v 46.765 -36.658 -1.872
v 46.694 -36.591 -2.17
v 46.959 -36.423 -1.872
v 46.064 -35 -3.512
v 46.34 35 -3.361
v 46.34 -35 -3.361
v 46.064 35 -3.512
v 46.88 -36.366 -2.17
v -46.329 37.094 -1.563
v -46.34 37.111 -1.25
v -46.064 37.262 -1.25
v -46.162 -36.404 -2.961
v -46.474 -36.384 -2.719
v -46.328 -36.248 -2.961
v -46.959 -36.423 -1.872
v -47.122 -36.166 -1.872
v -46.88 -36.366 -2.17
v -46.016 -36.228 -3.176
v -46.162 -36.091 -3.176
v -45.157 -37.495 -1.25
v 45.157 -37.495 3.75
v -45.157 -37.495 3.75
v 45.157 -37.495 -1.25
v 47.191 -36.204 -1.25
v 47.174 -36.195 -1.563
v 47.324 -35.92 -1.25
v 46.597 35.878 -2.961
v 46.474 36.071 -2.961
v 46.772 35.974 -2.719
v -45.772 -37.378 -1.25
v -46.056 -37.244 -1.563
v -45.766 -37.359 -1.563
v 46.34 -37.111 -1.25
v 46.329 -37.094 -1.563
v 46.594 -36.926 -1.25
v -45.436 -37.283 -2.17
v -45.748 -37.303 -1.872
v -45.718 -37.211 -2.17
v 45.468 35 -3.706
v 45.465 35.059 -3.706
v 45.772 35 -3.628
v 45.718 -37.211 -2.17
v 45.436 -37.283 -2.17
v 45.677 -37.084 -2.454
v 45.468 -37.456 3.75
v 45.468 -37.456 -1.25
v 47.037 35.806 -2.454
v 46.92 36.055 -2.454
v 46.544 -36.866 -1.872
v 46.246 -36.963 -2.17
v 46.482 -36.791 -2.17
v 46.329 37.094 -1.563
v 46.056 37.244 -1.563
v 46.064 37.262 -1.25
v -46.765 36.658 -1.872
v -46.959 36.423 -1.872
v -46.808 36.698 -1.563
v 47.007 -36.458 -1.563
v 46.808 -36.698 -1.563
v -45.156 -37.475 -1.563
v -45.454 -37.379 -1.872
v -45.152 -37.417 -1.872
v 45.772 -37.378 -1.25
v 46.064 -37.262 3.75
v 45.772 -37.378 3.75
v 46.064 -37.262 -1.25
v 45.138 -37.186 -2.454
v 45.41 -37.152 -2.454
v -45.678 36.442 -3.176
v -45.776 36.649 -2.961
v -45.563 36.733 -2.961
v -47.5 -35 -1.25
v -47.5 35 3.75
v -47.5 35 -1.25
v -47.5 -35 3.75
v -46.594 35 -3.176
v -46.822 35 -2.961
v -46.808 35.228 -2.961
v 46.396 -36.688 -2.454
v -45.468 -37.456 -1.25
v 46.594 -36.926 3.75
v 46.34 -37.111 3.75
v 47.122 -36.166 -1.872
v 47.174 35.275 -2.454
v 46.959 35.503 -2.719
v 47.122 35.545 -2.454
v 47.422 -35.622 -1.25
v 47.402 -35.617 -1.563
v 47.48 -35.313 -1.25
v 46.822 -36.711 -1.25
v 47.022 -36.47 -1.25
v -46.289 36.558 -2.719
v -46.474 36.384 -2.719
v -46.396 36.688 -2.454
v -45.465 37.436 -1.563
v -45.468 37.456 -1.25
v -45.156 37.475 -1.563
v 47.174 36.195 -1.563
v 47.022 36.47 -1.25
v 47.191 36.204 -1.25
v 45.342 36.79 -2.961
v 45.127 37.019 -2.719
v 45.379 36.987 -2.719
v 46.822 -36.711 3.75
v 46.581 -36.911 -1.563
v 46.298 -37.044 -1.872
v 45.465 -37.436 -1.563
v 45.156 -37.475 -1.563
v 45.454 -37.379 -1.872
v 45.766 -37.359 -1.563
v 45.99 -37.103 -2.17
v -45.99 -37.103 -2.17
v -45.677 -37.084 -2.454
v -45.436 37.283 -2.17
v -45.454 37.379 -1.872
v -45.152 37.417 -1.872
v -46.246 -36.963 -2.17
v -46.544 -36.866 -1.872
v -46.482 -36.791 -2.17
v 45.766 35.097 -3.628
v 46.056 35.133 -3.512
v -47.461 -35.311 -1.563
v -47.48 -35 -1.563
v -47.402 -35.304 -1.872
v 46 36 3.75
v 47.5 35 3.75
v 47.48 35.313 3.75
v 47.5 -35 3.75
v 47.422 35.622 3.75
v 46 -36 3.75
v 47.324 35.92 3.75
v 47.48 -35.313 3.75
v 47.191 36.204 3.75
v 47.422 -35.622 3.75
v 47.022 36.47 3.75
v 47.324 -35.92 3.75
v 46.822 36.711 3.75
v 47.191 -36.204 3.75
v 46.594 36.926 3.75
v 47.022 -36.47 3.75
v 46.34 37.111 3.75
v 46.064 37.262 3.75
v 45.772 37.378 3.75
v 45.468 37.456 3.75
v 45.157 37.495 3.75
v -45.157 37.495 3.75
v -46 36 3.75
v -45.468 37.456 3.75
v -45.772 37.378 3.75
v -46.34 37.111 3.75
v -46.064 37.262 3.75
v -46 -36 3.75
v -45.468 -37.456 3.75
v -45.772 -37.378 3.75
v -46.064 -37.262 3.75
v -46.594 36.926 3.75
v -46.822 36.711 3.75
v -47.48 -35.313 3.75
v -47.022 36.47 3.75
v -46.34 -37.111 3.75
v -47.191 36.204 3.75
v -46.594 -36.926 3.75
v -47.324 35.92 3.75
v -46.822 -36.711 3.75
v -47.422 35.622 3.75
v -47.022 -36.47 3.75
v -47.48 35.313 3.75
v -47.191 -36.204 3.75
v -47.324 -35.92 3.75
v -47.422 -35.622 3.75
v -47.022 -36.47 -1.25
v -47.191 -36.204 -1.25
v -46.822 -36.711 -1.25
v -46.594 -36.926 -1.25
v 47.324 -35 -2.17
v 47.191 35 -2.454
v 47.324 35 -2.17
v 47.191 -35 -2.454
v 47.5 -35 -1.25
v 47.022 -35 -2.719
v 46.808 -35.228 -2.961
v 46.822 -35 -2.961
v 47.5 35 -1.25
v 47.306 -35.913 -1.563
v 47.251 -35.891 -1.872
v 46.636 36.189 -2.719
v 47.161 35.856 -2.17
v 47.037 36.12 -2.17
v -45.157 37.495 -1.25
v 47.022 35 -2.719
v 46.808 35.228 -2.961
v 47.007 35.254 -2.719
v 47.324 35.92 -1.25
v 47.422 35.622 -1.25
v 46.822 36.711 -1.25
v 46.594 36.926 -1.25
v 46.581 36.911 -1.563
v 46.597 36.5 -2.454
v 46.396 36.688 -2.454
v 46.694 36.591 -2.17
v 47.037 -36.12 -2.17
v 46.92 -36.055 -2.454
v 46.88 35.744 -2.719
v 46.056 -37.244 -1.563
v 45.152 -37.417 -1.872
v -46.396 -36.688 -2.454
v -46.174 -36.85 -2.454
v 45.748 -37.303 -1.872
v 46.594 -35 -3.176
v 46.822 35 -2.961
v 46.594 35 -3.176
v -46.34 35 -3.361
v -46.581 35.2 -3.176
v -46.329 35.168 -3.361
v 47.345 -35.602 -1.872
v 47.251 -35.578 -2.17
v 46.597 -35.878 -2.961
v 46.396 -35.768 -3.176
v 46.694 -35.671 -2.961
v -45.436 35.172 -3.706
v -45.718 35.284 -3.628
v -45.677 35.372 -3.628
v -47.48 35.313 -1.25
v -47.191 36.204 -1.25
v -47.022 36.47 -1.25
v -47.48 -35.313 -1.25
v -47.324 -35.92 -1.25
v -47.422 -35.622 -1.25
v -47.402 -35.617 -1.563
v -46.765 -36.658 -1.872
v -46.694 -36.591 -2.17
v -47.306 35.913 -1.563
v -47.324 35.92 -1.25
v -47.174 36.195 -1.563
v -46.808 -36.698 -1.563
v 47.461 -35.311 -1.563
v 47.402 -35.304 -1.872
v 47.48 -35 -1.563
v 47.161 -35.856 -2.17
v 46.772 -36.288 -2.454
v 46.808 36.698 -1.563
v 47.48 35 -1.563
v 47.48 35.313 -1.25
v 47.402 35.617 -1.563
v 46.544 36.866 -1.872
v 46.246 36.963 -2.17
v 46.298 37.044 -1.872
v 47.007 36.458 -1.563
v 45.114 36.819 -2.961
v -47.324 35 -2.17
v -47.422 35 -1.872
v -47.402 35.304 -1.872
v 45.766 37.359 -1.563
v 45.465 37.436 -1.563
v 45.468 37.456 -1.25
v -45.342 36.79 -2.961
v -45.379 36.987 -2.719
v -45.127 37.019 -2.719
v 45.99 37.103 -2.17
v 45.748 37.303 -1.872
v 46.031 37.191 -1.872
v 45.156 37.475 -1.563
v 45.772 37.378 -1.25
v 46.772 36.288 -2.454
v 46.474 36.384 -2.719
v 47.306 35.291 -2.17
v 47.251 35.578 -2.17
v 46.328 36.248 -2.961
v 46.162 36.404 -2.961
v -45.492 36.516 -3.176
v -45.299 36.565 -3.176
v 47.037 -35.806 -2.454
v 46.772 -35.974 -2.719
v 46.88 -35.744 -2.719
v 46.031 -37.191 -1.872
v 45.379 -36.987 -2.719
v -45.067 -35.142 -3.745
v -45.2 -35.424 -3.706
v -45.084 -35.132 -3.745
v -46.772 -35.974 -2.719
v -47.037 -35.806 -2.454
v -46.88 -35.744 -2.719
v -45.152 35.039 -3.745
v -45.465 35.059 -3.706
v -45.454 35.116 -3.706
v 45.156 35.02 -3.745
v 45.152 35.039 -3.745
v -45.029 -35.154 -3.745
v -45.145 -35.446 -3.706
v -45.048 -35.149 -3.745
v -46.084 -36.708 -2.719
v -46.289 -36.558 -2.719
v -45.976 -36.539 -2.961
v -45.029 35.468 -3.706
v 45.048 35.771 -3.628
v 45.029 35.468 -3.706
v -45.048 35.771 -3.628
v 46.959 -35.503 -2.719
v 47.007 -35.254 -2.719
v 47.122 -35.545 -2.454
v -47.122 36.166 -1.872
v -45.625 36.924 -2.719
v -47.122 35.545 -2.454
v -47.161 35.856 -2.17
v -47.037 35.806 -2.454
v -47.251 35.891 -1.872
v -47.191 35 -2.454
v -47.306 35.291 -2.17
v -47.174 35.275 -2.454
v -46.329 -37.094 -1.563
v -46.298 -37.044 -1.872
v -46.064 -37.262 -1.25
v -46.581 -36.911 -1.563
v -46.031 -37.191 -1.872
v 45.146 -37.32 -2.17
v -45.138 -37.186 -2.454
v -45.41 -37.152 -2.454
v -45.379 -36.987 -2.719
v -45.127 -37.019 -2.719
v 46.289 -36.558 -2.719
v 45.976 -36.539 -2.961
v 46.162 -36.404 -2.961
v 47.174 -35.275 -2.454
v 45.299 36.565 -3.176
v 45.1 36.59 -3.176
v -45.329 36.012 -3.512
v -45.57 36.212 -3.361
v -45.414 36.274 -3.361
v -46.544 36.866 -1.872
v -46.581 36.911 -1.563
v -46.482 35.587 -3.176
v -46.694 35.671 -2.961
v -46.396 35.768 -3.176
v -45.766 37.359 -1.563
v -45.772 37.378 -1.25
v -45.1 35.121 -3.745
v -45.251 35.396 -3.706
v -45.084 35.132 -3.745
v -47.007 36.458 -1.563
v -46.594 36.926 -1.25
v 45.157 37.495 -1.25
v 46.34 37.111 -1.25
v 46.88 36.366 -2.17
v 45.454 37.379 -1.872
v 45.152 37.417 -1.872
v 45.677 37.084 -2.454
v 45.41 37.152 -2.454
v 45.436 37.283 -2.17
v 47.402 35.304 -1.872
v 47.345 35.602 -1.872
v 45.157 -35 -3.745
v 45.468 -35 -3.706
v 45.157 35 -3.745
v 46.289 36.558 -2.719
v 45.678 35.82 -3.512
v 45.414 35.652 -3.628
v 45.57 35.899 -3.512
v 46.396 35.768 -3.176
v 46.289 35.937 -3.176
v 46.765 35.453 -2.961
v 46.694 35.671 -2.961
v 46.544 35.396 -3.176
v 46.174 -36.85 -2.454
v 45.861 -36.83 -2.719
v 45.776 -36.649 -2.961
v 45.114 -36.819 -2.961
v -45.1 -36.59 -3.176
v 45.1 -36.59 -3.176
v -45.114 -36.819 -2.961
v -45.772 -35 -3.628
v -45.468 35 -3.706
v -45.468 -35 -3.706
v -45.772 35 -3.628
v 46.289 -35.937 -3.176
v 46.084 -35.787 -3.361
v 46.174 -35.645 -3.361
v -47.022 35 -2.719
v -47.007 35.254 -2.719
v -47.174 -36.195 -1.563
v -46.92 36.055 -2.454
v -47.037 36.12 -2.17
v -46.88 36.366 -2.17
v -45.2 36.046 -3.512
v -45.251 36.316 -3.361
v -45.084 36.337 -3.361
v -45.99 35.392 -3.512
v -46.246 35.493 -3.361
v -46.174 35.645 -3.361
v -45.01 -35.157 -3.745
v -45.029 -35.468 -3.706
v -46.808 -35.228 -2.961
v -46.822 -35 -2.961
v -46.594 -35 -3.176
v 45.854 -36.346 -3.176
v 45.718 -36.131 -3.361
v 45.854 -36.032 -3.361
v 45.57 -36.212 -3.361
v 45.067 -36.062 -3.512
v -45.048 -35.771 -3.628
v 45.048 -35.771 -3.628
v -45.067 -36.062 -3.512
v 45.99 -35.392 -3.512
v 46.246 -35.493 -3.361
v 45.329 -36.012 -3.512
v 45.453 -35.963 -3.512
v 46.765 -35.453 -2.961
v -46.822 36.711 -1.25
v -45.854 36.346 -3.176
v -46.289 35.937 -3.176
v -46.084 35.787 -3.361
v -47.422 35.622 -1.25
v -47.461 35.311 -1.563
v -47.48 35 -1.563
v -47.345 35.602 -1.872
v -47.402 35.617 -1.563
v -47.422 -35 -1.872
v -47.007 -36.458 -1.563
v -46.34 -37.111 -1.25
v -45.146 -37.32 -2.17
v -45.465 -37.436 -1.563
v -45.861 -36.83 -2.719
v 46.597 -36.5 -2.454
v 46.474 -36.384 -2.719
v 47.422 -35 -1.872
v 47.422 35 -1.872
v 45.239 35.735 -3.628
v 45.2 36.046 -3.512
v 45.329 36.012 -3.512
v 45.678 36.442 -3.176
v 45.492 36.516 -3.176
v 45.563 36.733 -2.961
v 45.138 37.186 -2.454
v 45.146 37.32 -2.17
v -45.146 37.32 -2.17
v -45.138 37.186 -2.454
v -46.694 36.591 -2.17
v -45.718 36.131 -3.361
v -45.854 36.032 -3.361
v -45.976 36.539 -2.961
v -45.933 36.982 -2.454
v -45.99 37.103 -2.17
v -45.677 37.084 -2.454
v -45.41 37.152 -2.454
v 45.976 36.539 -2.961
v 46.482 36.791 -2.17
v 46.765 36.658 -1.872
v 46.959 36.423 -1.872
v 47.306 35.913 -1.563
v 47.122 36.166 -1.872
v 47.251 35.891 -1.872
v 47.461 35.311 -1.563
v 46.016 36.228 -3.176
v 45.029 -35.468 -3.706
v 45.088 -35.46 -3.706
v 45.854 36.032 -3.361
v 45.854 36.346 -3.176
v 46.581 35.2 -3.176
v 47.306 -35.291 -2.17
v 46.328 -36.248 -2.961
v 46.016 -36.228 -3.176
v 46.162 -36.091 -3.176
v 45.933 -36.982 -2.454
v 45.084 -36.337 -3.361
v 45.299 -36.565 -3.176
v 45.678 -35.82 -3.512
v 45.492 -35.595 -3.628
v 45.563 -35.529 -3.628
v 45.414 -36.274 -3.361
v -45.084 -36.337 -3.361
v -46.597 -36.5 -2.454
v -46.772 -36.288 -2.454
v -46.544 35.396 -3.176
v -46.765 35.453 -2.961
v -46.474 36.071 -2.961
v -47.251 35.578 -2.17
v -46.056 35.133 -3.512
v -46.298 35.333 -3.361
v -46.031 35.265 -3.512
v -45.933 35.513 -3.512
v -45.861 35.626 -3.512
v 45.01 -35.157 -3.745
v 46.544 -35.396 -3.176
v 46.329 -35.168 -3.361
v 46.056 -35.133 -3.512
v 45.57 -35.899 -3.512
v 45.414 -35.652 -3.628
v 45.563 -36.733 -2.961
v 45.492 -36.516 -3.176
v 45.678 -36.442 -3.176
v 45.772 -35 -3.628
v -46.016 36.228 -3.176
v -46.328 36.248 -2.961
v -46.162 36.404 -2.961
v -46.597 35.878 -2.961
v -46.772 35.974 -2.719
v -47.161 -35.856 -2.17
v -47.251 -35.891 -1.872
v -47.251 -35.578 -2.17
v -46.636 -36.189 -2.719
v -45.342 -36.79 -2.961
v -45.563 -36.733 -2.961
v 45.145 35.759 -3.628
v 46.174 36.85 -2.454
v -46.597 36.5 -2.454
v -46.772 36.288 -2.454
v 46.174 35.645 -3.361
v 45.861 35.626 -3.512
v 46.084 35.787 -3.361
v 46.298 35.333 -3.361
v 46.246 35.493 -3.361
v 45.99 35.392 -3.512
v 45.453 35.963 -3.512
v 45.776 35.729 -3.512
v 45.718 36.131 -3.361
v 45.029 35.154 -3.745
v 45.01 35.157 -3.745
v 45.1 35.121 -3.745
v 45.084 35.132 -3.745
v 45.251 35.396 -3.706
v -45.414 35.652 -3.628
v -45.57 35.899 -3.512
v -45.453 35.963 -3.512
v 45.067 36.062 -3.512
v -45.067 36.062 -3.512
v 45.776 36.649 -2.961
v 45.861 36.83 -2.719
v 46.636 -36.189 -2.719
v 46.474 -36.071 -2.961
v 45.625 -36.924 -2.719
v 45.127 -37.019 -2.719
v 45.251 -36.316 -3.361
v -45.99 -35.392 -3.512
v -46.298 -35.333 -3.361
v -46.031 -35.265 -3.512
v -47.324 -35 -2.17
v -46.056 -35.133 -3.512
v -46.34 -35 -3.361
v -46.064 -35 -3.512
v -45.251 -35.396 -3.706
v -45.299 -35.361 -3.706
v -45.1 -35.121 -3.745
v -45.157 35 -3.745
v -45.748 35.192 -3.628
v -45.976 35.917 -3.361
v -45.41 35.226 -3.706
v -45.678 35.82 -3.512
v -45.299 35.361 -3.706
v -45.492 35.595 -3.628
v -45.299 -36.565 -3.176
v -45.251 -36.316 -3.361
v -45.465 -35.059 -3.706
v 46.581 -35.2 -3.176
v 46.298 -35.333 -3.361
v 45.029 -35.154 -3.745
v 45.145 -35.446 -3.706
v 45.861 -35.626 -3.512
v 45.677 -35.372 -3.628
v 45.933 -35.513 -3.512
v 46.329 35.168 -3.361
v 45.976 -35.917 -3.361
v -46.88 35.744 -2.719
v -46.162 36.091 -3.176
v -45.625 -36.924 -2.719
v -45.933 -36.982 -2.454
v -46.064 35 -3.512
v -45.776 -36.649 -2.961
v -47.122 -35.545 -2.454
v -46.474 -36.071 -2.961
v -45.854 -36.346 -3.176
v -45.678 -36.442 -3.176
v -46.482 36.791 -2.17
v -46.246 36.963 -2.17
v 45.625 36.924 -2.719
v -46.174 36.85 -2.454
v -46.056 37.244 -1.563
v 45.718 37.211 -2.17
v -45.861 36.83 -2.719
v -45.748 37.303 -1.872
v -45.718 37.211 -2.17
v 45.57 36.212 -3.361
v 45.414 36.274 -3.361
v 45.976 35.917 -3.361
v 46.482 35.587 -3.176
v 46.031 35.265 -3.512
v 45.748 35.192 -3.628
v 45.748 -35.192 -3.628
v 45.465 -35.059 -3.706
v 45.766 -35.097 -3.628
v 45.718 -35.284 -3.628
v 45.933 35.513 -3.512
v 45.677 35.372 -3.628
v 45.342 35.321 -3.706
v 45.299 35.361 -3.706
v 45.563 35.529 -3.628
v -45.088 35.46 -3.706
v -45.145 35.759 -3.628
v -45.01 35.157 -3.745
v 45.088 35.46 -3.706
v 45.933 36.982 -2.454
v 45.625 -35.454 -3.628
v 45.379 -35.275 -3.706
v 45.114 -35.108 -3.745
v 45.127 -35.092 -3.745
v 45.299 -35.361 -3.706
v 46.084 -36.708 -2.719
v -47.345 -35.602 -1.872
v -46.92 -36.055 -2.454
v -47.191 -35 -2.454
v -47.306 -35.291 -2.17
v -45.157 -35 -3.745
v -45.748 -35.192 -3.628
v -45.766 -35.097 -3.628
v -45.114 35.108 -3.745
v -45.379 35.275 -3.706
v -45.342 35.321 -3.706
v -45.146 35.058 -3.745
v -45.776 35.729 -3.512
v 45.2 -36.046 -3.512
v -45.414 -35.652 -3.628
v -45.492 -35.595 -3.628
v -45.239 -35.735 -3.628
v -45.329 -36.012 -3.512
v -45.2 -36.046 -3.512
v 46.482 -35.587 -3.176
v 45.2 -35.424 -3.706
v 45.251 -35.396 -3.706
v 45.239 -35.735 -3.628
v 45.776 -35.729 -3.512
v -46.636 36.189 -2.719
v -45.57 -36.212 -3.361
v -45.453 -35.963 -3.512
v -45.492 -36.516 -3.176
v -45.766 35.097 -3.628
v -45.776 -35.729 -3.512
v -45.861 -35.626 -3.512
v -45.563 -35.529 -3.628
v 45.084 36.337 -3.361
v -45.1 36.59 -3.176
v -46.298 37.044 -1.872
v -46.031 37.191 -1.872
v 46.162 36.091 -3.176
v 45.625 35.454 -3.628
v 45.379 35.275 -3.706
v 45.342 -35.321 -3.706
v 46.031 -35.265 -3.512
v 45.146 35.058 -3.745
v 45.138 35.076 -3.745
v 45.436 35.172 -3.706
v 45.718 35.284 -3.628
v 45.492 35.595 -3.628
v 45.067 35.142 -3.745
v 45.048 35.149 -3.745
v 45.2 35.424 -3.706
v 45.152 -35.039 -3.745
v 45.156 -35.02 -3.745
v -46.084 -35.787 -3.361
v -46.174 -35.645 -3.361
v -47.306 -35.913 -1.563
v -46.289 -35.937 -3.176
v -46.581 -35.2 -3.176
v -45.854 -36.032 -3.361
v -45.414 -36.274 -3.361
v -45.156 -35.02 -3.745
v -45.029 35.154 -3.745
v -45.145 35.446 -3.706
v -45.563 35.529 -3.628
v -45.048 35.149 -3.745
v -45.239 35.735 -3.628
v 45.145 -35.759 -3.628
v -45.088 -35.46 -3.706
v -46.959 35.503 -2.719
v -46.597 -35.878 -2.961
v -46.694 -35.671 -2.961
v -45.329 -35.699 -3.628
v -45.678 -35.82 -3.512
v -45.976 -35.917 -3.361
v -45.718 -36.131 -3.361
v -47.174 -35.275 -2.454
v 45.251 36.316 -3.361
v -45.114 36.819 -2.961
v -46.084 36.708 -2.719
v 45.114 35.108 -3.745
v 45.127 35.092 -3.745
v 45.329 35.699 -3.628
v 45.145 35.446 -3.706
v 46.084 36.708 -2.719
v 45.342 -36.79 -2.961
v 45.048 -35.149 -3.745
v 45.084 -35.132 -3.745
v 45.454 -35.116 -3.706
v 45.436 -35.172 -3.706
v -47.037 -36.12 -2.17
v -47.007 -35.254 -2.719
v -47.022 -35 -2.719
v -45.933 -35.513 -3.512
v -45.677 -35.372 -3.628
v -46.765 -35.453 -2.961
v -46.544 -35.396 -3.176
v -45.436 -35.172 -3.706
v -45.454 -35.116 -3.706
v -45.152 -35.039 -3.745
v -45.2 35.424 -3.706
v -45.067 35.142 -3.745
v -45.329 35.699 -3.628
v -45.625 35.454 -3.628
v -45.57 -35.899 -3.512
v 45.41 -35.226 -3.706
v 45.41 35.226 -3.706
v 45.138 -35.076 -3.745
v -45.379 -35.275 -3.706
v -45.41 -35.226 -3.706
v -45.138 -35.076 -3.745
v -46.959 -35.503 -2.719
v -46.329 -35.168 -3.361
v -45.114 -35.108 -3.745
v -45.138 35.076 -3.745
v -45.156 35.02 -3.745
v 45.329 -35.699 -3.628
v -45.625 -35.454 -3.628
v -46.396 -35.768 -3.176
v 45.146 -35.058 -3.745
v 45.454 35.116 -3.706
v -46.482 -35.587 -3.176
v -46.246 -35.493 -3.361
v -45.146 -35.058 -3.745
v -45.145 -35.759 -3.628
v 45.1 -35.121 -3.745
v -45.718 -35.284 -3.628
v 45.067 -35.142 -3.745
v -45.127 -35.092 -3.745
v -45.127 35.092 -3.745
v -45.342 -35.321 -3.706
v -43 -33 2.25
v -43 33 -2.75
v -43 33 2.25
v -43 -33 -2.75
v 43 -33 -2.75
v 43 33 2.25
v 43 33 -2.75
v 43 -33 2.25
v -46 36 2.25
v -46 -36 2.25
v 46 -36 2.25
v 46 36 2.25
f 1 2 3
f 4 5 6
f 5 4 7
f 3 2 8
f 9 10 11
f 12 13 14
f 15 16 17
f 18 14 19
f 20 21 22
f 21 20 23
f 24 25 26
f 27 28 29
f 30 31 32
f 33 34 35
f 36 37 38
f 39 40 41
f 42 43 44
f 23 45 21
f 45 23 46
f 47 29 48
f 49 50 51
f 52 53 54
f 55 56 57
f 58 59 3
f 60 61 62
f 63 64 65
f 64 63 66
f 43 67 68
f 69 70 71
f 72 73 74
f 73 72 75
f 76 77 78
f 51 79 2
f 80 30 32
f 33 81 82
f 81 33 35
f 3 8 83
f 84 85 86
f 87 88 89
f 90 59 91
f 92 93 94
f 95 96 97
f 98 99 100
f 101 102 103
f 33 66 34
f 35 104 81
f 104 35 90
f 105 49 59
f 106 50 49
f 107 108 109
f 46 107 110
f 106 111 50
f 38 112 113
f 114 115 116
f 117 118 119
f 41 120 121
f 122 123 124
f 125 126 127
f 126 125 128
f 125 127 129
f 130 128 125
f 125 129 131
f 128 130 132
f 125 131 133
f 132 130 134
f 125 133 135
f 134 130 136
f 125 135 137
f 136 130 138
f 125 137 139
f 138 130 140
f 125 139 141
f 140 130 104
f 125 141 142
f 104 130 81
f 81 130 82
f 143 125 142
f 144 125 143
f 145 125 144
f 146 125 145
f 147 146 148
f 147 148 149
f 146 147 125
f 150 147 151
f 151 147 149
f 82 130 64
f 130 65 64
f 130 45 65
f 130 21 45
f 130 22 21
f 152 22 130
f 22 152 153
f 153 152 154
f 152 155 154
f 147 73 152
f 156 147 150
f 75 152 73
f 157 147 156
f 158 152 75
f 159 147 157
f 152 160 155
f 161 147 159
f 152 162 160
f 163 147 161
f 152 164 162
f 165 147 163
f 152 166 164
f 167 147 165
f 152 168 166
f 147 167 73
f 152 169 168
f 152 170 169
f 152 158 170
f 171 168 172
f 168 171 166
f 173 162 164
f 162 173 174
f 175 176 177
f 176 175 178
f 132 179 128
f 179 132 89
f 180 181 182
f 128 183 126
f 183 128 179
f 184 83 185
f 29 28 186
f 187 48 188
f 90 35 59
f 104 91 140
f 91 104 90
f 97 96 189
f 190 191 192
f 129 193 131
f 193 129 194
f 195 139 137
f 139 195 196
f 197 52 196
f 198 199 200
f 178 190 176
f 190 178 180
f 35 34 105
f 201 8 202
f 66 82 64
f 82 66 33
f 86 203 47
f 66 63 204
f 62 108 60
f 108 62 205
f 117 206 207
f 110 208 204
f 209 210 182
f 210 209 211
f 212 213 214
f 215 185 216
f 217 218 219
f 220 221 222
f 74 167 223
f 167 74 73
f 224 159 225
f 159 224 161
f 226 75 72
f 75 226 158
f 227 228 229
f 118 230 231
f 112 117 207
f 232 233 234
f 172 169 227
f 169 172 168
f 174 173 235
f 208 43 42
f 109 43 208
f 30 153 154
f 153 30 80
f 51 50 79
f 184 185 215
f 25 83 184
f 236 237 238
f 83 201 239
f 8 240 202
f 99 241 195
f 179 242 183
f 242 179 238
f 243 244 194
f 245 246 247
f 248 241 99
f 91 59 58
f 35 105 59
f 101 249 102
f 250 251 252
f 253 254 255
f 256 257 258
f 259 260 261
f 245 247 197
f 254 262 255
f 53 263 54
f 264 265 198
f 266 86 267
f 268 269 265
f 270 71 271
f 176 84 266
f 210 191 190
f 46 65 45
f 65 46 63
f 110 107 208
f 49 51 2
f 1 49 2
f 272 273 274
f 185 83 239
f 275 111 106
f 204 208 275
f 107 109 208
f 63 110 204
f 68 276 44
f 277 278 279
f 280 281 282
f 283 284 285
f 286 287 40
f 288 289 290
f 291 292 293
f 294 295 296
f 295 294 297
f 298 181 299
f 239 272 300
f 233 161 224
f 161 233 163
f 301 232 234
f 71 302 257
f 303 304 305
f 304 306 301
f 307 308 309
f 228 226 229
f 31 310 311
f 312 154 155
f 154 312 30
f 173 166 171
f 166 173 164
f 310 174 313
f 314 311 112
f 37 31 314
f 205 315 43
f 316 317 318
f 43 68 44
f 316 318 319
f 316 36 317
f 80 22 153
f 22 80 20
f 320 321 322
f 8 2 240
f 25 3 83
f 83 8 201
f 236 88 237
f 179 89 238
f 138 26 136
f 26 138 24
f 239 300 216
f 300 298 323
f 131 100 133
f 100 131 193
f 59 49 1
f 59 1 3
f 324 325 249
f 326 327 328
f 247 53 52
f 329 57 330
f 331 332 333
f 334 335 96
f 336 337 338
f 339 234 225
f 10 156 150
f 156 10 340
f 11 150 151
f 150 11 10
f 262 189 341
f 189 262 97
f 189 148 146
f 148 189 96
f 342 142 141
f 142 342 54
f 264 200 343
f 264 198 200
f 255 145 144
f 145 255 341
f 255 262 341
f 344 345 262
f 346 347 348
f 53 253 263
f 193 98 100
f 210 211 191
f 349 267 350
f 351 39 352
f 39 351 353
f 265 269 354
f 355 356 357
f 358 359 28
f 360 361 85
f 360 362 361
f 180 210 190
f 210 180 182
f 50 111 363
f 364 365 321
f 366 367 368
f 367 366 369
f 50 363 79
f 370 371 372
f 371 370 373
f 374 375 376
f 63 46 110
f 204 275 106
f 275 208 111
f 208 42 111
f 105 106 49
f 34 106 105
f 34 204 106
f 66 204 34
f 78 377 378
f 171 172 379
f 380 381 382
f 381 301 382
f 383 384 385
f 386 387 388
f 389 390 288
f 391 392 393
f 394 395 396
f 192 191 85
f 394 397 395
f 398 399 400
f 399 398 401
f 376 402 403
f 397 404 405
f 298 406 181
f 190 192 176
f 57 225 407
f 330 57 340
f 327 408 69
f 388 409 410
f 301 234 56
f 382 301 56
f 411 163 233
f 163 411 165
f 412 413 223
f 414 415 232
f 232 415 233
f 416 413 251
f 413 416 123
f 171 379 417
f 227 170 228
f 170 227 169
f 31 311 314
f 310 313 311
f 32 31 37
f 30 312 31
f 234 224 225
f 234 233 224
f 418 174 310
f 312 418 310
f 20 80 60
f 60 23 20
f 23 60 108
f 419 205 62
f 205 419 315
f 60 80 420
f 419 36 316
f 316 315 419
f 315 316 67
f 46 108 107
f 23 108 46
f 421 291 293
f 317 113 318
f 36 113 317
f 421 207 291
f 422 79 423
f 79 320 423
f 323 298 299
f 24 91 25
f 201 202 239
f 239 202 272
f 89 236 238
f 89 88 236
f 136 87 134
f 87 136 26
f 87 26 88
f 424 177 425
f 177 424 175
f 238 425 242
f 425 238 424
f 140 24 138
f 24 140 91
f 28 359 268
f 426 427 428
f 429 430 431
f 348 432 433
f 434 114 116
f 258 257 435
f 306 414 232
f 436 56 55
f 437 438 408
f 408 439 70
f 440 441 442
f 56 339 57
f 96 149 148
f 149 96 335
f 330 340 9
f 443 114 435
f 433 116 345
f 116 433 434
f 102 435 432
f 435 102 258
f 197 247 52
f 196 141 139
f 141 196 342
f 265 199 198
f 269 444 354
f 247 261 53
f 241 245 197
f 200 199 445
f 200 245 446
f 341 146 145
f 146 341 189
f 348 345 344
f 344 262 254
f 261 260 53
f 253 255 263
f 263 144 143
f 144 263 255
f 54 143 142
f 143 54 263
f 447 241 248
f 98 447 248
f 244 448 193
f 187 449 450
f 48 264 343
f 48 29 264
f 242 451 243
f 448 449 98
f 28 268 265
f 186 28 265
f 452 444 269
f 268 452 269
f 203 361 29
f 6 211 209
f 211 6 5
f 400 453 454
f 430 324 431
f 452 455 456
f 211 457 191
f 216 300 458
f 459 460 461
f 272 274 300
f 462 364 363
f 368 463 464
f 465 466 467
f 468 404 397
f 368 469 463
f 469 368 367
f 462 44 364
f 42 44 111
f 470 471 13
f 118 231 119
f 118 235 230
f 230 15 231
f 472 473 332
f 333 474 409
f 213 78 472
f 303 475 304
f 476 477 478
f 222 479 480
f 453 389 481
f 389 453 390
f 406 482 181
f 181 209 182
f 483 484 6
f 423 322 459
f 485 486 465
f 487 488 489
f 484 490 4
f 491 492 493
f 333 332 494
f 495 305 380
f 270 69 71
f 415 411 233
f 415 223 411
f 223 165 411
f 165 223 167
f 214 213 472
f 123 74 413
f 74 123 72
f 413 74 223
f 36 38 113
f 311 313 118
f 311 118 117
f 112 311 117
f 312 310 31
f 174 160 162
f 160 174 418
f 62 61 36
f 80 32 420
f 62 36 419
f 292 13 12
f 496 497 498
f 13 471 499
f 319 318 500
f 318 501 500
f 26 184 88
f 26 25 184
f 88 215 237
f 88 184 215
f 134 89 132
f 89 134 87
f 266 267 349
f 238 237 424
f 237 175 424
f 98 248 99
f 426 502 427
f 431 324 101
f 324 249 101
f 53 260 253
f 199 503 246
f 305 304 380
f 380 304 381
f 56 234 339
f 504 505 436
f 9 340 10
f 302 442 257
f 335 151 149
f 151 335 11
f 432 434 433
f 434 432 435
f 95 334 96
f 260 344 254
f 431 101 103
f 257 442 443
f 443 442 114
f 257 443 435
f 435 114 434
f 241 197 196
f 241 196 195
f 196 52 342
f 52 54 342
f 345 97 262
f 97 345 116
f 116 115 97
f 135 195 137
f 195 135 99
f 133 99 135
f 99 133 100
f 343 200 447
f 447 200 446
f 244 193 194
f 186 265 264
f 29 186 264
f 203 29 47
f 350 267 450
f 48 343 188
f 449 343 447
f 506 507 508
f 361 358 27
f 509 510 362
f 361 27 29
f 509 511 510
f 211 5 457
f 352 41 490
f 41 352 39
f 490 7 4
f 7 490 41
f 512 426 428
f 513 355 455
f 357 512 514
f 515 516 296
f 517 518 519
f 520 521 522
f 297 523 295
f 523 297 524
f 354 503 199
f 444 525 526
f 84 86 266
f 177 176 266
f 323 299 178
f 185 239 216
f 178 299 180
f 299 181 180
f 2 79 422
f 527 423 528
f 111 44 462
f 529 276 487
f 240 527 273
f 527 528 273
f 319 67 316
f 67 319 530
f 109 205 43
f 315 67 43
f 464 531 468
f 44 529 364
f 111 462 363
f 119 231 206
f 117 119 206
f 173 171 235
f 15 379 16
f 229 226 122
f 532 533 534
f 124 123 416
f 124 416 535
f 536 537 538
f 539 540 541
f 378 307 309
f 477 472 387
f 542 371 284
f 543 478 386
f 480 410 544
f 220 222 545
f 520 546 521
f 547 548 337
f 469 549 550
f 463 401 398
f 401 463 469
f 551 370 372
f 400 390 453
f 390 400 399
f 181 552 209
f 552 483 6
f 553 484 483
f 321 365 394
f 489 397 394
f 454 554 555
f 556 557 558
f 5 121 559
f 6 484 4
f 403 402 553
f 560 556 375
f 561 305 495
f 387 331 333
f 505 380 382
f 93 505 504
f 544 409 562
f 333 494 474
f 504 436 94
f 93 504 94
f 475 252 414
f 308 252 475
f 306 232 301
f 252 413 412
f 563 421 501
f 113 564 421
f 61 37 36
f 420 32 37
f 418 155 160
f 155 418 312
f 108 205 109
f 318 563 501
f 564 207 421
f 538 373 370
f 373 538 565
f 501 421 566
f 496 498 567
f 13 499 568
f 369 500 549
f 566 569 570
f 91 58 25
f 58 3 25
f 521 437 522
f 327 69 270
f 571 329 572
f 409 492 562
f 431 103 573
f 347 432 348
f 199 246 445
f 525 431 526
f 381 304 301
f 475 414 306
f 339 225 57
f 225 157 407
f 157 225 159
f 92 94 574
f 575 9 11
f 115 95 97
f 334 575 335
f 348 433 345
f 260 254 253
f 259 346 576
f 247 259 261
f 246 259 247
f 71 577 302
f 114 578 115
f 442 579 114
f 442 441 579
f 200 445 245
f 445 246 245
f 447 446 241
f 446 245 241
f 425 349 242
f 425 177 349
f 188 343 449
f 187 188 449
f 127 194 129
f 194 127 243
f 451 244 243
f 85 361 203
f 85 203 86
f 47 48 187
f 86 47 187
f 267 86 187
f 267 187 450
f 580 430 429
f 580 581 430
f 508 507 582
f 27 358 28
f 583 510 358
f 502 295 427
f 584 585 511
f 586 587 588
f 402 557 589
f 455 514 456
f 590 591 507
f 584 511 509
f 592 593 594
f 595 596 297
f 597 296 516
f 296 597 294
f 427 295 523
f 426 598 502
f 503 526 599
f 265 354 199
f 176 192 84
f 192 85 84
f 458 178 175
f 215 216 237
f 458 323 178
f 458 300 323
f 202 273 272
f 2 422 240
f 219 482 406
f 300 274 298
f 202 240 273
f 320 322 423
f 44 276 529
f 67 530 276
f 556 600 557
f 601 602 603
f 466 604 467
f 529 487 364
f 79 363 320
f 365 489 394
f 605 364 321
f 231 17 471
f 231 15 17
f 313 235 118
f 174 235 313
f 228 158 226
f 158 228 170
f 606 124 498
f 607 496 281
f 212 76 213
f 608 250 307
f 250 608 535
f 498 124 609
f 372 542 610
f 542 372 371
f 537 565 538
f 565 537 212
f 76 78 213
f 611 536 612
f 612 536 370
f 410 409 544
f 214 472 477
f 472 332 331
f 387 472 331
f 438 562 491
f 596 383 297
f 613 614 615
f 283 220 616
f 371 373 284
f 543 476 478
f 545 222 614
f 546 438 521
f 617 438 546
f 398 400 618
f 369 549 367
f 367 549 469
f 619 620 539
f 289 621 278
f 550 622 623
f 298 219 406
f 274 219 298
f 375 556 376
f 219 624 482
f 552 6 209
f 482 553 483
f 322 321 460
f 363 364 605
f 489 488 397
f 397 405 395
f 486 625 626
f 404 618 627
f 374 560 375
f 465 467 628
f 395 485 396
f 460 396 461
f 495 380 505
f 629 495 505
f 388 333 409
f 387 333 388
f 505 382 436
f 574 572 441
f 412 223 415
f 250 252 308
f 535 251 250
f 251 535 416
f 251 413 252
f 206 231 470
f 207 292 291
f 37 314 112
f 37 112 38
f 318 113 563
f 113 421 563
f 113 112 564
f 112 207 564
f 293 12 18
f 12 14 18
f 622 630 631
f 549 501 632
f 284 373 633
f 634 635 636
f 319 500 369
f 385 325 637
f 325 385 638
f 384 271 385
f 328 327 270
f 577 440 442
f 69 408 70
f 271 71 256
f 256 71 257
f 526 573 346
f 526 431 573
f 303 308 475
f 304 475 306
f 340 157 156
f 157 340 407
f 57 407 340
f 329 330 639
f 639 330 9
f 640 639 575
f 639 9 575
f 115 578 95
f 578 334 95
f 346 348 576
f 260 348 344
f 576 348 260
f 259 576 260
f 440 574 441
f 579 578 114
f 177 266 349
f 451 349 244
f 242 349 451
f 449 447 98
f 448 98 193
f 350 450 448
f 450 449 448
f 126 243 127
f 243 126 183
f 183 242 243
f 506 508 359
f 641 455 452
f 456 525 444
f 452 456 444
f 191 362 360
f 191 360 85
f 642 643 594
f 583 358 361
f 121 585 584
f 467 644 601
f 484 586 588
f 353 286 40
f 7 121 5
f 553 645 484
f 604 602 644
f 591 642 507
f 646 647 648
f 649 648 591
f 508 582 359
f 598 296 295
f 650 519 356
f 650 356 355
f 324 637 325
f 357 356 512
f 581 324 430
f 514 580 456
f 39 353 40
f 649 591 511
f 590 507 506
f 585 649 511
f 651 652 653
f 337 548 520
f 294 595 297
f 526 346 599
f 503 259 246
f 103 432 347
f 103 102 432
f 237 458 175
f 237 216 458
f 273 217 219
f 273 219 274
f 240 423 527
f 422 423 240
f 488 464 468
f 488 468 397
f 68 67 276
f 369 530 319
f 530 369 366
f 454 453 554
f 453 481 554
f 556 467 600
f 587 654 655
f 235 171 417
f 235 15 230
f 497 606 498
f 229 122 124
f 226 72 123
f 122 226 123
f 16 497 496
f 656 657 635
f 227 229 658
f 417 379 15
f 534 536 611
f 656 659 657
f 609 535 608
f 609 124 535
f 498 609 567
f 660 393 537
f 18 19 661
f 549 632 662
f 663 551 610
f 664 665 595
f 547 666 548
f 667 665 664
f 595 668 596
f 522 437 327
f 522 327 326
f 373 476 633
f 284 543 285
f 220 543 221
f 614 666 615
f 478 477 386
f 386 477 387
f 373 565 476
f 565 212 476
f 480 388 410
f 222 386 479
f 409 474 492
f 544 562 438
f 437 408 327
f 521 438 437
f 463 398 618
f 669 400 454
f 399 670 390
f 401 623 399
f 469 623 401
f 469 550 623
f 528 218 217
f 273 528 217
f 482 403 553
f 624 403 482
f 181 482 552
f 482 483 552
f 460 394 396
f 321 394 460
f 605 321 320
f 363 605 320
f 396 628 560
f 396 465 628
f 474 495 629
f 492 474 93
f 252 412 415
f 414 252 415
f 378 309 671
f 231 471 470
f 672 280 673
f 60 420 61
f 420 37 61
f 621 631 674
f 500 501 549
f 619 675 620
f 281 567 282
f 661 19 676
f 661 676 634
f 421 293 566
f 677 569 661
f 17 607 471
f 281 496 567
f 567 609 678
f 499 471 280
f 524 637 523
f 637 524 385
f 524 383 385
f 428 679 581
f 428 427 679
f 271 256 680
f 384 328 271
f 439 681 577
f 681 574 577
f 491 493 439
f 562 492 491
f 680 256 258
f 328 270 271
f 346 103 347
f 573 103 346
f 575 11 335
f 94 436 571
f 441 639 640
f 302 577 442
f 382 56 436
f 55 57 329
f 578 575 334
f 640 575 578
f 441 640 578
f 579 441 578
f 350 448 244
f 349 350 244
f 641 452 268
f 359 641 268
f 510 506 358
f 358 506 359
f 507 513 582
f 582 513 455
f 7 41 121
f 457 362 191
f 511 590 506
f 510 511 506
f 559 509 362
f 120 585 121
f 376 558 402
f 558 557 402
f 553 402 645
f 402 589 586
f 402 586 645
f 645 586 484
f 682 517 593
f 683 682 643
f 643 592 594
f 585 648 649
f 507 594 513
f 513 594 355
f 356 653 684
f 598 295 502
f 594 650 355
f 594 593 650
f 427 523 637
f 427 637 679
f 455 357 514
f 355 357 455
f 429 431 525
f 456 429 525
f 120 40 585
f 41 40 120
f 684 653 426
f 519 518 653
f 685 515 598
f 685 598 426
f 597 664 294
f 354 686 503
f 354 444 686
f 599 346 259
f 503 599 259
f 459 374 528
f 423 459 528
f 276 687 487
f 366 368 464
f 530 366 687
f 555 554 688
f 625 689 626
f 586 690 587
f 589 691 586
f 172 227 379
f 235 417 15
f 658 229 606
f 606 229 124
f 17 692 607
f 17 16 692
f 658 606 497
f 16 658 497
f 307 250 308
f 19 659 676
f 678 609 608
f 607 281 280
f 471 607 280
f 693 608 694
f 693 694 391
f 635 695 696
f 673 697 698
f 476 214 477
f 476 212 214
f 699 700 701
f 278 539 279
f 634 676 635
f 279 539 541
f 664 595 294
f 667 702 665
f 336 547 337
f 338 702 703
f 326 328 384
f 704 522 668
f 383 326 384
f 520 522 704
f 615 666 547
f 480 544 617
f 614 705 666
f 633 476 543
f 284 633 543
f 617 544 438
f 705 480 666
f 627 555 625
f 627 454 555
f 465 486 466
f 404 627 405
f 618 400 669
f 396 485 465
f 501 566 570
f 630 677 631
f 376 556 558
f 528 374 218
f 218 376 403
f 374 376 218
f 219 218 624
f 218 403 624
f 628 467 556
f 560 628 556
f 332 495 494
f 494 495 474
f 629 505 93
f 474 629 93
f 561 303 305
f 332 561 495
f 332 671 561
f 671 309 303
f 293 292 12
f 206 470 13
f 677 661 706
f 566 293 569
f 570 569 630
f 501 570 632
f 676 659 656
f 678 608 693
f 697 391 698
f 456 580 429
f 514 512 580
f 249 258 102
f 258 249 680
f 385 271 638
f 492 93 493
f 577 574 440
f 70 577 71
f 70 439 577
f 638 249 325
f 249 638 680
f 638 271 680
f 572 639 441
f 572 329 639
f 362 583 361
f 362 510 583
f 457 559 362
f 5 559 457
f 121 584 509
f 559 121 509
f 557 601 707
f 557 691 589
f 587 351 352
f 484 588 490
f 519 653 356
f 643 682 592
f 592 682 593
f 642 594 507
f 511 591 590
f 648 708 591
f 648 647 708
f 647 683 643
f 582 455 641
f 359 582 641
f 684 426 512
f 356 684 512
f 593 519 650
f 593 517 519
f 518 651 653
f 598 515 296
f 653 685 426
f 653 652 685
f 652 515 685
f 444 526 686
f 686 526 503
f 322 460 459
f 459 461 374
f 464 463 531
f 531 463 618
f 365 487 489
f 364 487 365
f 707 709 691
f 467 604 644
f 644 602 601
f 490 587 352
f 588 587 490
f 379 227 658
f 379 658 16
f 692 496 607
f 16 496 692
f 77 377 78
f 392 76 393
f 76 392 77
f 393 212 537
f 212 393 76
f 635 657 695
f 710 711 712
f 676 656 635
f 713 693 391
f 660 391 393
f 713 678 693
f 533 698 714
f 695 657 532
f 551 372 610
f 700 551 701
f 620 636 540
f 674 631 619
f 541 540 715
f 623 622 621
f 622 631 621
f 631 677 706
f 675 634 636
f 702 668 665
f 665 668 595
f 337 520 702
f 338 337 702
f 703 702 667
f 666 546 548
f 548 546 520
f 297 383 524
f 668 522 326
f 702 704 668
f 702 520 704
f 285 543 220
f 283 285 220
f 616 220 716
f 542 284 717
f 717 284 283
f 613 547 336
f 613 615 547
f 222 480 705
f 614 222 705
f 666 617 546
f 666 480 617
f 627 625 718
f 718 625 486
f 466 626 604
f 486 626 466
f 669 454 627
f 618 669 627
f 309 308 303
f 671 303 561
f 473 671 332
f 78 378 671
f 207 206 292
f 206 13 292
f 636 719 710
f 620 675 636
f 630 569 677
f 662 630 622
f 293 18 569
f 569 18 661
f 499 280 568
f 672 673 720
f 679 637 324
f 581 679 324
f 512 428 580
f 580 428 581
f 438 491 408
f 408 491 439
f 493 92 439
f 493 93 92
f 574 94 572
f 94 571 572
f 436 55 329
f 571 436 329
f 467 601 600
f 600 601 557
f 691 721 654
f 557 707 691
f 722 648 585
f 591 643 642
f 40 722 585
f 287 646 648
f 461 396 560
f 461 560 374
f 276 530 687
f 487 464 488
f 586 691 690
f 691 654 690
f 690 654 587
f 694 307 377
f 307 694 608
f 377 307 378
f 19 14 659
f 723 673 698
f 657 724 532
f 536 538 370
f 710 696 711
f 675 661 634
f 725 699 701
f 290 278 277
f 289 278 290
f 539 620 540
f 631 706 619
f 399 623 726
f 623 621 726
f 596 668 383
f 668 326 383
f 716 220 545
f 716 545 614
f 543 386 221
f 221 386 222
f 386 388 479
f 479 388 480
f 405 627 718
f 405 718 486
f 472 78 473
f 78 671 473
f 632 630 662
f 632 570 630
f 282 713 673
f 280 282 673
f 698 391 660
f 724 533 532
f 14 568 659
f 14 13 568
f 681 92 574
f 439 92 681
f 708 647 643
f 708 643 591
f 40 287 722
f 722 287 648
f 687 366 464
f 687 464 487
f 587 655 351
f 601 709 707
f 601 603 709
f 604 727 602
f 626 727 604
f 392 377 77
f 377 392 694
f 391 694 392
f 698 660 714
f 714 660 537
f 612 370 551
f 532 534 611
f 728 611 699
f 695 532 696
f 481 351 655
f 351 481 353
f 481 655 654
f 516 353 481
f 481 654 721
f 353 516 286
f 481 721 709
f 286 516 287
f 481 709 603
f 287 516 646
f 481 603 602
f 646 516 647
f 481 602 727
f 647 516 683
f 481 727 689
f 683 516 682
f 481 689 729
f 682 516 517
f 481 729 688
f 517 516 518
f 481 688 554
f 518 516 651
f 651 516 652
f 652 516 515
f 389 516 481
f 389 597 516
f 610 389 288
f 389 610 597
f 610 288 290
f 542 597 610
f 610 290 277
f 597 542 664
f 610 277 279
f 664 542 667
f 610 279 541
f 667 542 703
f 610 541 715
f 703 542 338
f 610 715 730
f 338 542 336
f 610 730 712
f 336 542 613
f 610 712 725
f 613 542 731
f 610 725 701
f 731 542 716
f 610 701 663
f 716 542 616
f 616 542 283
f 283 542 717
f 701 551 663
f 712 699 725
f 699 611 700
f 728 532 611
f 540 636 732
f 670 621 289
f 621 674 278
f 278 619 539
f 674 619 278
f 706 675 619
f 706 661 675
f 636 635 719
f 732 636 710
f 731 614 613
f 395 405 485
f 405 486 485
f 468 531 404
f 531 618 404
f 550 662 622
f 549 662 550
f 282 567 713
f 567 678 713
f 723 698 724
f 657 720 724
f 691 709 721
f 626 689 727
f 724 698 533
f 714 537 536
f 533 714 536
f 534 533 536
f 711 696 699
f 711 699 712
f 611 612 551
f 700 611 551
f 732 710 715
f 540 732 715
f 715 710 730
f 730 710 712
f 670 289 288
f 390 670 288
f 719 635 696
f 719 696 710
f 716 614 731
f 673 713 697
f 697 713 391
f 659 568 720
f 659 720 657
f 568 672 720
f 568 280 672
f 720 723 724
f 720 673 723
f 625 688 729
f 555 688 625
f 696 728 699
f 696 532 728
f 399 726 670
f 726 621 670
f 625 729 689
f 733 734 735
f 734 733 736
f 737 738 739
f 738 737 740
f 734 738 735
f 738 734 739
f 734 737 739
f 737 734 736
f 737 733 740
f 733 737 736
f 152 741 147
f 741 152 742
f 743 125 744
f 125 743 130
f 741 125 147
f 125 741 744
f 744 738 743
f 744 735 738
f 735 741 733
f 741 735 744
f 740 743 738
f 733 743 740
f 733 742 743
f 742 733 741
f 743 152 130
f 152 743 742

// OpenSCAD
difference() {
    hull() {
        for (x=[-90/2,90/2],y=[-70/2,70/2]) union() {
            translate([x,y,-2.5/2]) sphere(d=5, $fn=50);
            translate([x,y,2.5/2]) cylinder(d=5, h=5, $fn=50, center=true);
        }
    }

    translate([0,0,1]) cube([86,66,7.5], center=true);

    translate([0,0,4.75-1.5]) cube([92,72,2], center=true);
    
}
